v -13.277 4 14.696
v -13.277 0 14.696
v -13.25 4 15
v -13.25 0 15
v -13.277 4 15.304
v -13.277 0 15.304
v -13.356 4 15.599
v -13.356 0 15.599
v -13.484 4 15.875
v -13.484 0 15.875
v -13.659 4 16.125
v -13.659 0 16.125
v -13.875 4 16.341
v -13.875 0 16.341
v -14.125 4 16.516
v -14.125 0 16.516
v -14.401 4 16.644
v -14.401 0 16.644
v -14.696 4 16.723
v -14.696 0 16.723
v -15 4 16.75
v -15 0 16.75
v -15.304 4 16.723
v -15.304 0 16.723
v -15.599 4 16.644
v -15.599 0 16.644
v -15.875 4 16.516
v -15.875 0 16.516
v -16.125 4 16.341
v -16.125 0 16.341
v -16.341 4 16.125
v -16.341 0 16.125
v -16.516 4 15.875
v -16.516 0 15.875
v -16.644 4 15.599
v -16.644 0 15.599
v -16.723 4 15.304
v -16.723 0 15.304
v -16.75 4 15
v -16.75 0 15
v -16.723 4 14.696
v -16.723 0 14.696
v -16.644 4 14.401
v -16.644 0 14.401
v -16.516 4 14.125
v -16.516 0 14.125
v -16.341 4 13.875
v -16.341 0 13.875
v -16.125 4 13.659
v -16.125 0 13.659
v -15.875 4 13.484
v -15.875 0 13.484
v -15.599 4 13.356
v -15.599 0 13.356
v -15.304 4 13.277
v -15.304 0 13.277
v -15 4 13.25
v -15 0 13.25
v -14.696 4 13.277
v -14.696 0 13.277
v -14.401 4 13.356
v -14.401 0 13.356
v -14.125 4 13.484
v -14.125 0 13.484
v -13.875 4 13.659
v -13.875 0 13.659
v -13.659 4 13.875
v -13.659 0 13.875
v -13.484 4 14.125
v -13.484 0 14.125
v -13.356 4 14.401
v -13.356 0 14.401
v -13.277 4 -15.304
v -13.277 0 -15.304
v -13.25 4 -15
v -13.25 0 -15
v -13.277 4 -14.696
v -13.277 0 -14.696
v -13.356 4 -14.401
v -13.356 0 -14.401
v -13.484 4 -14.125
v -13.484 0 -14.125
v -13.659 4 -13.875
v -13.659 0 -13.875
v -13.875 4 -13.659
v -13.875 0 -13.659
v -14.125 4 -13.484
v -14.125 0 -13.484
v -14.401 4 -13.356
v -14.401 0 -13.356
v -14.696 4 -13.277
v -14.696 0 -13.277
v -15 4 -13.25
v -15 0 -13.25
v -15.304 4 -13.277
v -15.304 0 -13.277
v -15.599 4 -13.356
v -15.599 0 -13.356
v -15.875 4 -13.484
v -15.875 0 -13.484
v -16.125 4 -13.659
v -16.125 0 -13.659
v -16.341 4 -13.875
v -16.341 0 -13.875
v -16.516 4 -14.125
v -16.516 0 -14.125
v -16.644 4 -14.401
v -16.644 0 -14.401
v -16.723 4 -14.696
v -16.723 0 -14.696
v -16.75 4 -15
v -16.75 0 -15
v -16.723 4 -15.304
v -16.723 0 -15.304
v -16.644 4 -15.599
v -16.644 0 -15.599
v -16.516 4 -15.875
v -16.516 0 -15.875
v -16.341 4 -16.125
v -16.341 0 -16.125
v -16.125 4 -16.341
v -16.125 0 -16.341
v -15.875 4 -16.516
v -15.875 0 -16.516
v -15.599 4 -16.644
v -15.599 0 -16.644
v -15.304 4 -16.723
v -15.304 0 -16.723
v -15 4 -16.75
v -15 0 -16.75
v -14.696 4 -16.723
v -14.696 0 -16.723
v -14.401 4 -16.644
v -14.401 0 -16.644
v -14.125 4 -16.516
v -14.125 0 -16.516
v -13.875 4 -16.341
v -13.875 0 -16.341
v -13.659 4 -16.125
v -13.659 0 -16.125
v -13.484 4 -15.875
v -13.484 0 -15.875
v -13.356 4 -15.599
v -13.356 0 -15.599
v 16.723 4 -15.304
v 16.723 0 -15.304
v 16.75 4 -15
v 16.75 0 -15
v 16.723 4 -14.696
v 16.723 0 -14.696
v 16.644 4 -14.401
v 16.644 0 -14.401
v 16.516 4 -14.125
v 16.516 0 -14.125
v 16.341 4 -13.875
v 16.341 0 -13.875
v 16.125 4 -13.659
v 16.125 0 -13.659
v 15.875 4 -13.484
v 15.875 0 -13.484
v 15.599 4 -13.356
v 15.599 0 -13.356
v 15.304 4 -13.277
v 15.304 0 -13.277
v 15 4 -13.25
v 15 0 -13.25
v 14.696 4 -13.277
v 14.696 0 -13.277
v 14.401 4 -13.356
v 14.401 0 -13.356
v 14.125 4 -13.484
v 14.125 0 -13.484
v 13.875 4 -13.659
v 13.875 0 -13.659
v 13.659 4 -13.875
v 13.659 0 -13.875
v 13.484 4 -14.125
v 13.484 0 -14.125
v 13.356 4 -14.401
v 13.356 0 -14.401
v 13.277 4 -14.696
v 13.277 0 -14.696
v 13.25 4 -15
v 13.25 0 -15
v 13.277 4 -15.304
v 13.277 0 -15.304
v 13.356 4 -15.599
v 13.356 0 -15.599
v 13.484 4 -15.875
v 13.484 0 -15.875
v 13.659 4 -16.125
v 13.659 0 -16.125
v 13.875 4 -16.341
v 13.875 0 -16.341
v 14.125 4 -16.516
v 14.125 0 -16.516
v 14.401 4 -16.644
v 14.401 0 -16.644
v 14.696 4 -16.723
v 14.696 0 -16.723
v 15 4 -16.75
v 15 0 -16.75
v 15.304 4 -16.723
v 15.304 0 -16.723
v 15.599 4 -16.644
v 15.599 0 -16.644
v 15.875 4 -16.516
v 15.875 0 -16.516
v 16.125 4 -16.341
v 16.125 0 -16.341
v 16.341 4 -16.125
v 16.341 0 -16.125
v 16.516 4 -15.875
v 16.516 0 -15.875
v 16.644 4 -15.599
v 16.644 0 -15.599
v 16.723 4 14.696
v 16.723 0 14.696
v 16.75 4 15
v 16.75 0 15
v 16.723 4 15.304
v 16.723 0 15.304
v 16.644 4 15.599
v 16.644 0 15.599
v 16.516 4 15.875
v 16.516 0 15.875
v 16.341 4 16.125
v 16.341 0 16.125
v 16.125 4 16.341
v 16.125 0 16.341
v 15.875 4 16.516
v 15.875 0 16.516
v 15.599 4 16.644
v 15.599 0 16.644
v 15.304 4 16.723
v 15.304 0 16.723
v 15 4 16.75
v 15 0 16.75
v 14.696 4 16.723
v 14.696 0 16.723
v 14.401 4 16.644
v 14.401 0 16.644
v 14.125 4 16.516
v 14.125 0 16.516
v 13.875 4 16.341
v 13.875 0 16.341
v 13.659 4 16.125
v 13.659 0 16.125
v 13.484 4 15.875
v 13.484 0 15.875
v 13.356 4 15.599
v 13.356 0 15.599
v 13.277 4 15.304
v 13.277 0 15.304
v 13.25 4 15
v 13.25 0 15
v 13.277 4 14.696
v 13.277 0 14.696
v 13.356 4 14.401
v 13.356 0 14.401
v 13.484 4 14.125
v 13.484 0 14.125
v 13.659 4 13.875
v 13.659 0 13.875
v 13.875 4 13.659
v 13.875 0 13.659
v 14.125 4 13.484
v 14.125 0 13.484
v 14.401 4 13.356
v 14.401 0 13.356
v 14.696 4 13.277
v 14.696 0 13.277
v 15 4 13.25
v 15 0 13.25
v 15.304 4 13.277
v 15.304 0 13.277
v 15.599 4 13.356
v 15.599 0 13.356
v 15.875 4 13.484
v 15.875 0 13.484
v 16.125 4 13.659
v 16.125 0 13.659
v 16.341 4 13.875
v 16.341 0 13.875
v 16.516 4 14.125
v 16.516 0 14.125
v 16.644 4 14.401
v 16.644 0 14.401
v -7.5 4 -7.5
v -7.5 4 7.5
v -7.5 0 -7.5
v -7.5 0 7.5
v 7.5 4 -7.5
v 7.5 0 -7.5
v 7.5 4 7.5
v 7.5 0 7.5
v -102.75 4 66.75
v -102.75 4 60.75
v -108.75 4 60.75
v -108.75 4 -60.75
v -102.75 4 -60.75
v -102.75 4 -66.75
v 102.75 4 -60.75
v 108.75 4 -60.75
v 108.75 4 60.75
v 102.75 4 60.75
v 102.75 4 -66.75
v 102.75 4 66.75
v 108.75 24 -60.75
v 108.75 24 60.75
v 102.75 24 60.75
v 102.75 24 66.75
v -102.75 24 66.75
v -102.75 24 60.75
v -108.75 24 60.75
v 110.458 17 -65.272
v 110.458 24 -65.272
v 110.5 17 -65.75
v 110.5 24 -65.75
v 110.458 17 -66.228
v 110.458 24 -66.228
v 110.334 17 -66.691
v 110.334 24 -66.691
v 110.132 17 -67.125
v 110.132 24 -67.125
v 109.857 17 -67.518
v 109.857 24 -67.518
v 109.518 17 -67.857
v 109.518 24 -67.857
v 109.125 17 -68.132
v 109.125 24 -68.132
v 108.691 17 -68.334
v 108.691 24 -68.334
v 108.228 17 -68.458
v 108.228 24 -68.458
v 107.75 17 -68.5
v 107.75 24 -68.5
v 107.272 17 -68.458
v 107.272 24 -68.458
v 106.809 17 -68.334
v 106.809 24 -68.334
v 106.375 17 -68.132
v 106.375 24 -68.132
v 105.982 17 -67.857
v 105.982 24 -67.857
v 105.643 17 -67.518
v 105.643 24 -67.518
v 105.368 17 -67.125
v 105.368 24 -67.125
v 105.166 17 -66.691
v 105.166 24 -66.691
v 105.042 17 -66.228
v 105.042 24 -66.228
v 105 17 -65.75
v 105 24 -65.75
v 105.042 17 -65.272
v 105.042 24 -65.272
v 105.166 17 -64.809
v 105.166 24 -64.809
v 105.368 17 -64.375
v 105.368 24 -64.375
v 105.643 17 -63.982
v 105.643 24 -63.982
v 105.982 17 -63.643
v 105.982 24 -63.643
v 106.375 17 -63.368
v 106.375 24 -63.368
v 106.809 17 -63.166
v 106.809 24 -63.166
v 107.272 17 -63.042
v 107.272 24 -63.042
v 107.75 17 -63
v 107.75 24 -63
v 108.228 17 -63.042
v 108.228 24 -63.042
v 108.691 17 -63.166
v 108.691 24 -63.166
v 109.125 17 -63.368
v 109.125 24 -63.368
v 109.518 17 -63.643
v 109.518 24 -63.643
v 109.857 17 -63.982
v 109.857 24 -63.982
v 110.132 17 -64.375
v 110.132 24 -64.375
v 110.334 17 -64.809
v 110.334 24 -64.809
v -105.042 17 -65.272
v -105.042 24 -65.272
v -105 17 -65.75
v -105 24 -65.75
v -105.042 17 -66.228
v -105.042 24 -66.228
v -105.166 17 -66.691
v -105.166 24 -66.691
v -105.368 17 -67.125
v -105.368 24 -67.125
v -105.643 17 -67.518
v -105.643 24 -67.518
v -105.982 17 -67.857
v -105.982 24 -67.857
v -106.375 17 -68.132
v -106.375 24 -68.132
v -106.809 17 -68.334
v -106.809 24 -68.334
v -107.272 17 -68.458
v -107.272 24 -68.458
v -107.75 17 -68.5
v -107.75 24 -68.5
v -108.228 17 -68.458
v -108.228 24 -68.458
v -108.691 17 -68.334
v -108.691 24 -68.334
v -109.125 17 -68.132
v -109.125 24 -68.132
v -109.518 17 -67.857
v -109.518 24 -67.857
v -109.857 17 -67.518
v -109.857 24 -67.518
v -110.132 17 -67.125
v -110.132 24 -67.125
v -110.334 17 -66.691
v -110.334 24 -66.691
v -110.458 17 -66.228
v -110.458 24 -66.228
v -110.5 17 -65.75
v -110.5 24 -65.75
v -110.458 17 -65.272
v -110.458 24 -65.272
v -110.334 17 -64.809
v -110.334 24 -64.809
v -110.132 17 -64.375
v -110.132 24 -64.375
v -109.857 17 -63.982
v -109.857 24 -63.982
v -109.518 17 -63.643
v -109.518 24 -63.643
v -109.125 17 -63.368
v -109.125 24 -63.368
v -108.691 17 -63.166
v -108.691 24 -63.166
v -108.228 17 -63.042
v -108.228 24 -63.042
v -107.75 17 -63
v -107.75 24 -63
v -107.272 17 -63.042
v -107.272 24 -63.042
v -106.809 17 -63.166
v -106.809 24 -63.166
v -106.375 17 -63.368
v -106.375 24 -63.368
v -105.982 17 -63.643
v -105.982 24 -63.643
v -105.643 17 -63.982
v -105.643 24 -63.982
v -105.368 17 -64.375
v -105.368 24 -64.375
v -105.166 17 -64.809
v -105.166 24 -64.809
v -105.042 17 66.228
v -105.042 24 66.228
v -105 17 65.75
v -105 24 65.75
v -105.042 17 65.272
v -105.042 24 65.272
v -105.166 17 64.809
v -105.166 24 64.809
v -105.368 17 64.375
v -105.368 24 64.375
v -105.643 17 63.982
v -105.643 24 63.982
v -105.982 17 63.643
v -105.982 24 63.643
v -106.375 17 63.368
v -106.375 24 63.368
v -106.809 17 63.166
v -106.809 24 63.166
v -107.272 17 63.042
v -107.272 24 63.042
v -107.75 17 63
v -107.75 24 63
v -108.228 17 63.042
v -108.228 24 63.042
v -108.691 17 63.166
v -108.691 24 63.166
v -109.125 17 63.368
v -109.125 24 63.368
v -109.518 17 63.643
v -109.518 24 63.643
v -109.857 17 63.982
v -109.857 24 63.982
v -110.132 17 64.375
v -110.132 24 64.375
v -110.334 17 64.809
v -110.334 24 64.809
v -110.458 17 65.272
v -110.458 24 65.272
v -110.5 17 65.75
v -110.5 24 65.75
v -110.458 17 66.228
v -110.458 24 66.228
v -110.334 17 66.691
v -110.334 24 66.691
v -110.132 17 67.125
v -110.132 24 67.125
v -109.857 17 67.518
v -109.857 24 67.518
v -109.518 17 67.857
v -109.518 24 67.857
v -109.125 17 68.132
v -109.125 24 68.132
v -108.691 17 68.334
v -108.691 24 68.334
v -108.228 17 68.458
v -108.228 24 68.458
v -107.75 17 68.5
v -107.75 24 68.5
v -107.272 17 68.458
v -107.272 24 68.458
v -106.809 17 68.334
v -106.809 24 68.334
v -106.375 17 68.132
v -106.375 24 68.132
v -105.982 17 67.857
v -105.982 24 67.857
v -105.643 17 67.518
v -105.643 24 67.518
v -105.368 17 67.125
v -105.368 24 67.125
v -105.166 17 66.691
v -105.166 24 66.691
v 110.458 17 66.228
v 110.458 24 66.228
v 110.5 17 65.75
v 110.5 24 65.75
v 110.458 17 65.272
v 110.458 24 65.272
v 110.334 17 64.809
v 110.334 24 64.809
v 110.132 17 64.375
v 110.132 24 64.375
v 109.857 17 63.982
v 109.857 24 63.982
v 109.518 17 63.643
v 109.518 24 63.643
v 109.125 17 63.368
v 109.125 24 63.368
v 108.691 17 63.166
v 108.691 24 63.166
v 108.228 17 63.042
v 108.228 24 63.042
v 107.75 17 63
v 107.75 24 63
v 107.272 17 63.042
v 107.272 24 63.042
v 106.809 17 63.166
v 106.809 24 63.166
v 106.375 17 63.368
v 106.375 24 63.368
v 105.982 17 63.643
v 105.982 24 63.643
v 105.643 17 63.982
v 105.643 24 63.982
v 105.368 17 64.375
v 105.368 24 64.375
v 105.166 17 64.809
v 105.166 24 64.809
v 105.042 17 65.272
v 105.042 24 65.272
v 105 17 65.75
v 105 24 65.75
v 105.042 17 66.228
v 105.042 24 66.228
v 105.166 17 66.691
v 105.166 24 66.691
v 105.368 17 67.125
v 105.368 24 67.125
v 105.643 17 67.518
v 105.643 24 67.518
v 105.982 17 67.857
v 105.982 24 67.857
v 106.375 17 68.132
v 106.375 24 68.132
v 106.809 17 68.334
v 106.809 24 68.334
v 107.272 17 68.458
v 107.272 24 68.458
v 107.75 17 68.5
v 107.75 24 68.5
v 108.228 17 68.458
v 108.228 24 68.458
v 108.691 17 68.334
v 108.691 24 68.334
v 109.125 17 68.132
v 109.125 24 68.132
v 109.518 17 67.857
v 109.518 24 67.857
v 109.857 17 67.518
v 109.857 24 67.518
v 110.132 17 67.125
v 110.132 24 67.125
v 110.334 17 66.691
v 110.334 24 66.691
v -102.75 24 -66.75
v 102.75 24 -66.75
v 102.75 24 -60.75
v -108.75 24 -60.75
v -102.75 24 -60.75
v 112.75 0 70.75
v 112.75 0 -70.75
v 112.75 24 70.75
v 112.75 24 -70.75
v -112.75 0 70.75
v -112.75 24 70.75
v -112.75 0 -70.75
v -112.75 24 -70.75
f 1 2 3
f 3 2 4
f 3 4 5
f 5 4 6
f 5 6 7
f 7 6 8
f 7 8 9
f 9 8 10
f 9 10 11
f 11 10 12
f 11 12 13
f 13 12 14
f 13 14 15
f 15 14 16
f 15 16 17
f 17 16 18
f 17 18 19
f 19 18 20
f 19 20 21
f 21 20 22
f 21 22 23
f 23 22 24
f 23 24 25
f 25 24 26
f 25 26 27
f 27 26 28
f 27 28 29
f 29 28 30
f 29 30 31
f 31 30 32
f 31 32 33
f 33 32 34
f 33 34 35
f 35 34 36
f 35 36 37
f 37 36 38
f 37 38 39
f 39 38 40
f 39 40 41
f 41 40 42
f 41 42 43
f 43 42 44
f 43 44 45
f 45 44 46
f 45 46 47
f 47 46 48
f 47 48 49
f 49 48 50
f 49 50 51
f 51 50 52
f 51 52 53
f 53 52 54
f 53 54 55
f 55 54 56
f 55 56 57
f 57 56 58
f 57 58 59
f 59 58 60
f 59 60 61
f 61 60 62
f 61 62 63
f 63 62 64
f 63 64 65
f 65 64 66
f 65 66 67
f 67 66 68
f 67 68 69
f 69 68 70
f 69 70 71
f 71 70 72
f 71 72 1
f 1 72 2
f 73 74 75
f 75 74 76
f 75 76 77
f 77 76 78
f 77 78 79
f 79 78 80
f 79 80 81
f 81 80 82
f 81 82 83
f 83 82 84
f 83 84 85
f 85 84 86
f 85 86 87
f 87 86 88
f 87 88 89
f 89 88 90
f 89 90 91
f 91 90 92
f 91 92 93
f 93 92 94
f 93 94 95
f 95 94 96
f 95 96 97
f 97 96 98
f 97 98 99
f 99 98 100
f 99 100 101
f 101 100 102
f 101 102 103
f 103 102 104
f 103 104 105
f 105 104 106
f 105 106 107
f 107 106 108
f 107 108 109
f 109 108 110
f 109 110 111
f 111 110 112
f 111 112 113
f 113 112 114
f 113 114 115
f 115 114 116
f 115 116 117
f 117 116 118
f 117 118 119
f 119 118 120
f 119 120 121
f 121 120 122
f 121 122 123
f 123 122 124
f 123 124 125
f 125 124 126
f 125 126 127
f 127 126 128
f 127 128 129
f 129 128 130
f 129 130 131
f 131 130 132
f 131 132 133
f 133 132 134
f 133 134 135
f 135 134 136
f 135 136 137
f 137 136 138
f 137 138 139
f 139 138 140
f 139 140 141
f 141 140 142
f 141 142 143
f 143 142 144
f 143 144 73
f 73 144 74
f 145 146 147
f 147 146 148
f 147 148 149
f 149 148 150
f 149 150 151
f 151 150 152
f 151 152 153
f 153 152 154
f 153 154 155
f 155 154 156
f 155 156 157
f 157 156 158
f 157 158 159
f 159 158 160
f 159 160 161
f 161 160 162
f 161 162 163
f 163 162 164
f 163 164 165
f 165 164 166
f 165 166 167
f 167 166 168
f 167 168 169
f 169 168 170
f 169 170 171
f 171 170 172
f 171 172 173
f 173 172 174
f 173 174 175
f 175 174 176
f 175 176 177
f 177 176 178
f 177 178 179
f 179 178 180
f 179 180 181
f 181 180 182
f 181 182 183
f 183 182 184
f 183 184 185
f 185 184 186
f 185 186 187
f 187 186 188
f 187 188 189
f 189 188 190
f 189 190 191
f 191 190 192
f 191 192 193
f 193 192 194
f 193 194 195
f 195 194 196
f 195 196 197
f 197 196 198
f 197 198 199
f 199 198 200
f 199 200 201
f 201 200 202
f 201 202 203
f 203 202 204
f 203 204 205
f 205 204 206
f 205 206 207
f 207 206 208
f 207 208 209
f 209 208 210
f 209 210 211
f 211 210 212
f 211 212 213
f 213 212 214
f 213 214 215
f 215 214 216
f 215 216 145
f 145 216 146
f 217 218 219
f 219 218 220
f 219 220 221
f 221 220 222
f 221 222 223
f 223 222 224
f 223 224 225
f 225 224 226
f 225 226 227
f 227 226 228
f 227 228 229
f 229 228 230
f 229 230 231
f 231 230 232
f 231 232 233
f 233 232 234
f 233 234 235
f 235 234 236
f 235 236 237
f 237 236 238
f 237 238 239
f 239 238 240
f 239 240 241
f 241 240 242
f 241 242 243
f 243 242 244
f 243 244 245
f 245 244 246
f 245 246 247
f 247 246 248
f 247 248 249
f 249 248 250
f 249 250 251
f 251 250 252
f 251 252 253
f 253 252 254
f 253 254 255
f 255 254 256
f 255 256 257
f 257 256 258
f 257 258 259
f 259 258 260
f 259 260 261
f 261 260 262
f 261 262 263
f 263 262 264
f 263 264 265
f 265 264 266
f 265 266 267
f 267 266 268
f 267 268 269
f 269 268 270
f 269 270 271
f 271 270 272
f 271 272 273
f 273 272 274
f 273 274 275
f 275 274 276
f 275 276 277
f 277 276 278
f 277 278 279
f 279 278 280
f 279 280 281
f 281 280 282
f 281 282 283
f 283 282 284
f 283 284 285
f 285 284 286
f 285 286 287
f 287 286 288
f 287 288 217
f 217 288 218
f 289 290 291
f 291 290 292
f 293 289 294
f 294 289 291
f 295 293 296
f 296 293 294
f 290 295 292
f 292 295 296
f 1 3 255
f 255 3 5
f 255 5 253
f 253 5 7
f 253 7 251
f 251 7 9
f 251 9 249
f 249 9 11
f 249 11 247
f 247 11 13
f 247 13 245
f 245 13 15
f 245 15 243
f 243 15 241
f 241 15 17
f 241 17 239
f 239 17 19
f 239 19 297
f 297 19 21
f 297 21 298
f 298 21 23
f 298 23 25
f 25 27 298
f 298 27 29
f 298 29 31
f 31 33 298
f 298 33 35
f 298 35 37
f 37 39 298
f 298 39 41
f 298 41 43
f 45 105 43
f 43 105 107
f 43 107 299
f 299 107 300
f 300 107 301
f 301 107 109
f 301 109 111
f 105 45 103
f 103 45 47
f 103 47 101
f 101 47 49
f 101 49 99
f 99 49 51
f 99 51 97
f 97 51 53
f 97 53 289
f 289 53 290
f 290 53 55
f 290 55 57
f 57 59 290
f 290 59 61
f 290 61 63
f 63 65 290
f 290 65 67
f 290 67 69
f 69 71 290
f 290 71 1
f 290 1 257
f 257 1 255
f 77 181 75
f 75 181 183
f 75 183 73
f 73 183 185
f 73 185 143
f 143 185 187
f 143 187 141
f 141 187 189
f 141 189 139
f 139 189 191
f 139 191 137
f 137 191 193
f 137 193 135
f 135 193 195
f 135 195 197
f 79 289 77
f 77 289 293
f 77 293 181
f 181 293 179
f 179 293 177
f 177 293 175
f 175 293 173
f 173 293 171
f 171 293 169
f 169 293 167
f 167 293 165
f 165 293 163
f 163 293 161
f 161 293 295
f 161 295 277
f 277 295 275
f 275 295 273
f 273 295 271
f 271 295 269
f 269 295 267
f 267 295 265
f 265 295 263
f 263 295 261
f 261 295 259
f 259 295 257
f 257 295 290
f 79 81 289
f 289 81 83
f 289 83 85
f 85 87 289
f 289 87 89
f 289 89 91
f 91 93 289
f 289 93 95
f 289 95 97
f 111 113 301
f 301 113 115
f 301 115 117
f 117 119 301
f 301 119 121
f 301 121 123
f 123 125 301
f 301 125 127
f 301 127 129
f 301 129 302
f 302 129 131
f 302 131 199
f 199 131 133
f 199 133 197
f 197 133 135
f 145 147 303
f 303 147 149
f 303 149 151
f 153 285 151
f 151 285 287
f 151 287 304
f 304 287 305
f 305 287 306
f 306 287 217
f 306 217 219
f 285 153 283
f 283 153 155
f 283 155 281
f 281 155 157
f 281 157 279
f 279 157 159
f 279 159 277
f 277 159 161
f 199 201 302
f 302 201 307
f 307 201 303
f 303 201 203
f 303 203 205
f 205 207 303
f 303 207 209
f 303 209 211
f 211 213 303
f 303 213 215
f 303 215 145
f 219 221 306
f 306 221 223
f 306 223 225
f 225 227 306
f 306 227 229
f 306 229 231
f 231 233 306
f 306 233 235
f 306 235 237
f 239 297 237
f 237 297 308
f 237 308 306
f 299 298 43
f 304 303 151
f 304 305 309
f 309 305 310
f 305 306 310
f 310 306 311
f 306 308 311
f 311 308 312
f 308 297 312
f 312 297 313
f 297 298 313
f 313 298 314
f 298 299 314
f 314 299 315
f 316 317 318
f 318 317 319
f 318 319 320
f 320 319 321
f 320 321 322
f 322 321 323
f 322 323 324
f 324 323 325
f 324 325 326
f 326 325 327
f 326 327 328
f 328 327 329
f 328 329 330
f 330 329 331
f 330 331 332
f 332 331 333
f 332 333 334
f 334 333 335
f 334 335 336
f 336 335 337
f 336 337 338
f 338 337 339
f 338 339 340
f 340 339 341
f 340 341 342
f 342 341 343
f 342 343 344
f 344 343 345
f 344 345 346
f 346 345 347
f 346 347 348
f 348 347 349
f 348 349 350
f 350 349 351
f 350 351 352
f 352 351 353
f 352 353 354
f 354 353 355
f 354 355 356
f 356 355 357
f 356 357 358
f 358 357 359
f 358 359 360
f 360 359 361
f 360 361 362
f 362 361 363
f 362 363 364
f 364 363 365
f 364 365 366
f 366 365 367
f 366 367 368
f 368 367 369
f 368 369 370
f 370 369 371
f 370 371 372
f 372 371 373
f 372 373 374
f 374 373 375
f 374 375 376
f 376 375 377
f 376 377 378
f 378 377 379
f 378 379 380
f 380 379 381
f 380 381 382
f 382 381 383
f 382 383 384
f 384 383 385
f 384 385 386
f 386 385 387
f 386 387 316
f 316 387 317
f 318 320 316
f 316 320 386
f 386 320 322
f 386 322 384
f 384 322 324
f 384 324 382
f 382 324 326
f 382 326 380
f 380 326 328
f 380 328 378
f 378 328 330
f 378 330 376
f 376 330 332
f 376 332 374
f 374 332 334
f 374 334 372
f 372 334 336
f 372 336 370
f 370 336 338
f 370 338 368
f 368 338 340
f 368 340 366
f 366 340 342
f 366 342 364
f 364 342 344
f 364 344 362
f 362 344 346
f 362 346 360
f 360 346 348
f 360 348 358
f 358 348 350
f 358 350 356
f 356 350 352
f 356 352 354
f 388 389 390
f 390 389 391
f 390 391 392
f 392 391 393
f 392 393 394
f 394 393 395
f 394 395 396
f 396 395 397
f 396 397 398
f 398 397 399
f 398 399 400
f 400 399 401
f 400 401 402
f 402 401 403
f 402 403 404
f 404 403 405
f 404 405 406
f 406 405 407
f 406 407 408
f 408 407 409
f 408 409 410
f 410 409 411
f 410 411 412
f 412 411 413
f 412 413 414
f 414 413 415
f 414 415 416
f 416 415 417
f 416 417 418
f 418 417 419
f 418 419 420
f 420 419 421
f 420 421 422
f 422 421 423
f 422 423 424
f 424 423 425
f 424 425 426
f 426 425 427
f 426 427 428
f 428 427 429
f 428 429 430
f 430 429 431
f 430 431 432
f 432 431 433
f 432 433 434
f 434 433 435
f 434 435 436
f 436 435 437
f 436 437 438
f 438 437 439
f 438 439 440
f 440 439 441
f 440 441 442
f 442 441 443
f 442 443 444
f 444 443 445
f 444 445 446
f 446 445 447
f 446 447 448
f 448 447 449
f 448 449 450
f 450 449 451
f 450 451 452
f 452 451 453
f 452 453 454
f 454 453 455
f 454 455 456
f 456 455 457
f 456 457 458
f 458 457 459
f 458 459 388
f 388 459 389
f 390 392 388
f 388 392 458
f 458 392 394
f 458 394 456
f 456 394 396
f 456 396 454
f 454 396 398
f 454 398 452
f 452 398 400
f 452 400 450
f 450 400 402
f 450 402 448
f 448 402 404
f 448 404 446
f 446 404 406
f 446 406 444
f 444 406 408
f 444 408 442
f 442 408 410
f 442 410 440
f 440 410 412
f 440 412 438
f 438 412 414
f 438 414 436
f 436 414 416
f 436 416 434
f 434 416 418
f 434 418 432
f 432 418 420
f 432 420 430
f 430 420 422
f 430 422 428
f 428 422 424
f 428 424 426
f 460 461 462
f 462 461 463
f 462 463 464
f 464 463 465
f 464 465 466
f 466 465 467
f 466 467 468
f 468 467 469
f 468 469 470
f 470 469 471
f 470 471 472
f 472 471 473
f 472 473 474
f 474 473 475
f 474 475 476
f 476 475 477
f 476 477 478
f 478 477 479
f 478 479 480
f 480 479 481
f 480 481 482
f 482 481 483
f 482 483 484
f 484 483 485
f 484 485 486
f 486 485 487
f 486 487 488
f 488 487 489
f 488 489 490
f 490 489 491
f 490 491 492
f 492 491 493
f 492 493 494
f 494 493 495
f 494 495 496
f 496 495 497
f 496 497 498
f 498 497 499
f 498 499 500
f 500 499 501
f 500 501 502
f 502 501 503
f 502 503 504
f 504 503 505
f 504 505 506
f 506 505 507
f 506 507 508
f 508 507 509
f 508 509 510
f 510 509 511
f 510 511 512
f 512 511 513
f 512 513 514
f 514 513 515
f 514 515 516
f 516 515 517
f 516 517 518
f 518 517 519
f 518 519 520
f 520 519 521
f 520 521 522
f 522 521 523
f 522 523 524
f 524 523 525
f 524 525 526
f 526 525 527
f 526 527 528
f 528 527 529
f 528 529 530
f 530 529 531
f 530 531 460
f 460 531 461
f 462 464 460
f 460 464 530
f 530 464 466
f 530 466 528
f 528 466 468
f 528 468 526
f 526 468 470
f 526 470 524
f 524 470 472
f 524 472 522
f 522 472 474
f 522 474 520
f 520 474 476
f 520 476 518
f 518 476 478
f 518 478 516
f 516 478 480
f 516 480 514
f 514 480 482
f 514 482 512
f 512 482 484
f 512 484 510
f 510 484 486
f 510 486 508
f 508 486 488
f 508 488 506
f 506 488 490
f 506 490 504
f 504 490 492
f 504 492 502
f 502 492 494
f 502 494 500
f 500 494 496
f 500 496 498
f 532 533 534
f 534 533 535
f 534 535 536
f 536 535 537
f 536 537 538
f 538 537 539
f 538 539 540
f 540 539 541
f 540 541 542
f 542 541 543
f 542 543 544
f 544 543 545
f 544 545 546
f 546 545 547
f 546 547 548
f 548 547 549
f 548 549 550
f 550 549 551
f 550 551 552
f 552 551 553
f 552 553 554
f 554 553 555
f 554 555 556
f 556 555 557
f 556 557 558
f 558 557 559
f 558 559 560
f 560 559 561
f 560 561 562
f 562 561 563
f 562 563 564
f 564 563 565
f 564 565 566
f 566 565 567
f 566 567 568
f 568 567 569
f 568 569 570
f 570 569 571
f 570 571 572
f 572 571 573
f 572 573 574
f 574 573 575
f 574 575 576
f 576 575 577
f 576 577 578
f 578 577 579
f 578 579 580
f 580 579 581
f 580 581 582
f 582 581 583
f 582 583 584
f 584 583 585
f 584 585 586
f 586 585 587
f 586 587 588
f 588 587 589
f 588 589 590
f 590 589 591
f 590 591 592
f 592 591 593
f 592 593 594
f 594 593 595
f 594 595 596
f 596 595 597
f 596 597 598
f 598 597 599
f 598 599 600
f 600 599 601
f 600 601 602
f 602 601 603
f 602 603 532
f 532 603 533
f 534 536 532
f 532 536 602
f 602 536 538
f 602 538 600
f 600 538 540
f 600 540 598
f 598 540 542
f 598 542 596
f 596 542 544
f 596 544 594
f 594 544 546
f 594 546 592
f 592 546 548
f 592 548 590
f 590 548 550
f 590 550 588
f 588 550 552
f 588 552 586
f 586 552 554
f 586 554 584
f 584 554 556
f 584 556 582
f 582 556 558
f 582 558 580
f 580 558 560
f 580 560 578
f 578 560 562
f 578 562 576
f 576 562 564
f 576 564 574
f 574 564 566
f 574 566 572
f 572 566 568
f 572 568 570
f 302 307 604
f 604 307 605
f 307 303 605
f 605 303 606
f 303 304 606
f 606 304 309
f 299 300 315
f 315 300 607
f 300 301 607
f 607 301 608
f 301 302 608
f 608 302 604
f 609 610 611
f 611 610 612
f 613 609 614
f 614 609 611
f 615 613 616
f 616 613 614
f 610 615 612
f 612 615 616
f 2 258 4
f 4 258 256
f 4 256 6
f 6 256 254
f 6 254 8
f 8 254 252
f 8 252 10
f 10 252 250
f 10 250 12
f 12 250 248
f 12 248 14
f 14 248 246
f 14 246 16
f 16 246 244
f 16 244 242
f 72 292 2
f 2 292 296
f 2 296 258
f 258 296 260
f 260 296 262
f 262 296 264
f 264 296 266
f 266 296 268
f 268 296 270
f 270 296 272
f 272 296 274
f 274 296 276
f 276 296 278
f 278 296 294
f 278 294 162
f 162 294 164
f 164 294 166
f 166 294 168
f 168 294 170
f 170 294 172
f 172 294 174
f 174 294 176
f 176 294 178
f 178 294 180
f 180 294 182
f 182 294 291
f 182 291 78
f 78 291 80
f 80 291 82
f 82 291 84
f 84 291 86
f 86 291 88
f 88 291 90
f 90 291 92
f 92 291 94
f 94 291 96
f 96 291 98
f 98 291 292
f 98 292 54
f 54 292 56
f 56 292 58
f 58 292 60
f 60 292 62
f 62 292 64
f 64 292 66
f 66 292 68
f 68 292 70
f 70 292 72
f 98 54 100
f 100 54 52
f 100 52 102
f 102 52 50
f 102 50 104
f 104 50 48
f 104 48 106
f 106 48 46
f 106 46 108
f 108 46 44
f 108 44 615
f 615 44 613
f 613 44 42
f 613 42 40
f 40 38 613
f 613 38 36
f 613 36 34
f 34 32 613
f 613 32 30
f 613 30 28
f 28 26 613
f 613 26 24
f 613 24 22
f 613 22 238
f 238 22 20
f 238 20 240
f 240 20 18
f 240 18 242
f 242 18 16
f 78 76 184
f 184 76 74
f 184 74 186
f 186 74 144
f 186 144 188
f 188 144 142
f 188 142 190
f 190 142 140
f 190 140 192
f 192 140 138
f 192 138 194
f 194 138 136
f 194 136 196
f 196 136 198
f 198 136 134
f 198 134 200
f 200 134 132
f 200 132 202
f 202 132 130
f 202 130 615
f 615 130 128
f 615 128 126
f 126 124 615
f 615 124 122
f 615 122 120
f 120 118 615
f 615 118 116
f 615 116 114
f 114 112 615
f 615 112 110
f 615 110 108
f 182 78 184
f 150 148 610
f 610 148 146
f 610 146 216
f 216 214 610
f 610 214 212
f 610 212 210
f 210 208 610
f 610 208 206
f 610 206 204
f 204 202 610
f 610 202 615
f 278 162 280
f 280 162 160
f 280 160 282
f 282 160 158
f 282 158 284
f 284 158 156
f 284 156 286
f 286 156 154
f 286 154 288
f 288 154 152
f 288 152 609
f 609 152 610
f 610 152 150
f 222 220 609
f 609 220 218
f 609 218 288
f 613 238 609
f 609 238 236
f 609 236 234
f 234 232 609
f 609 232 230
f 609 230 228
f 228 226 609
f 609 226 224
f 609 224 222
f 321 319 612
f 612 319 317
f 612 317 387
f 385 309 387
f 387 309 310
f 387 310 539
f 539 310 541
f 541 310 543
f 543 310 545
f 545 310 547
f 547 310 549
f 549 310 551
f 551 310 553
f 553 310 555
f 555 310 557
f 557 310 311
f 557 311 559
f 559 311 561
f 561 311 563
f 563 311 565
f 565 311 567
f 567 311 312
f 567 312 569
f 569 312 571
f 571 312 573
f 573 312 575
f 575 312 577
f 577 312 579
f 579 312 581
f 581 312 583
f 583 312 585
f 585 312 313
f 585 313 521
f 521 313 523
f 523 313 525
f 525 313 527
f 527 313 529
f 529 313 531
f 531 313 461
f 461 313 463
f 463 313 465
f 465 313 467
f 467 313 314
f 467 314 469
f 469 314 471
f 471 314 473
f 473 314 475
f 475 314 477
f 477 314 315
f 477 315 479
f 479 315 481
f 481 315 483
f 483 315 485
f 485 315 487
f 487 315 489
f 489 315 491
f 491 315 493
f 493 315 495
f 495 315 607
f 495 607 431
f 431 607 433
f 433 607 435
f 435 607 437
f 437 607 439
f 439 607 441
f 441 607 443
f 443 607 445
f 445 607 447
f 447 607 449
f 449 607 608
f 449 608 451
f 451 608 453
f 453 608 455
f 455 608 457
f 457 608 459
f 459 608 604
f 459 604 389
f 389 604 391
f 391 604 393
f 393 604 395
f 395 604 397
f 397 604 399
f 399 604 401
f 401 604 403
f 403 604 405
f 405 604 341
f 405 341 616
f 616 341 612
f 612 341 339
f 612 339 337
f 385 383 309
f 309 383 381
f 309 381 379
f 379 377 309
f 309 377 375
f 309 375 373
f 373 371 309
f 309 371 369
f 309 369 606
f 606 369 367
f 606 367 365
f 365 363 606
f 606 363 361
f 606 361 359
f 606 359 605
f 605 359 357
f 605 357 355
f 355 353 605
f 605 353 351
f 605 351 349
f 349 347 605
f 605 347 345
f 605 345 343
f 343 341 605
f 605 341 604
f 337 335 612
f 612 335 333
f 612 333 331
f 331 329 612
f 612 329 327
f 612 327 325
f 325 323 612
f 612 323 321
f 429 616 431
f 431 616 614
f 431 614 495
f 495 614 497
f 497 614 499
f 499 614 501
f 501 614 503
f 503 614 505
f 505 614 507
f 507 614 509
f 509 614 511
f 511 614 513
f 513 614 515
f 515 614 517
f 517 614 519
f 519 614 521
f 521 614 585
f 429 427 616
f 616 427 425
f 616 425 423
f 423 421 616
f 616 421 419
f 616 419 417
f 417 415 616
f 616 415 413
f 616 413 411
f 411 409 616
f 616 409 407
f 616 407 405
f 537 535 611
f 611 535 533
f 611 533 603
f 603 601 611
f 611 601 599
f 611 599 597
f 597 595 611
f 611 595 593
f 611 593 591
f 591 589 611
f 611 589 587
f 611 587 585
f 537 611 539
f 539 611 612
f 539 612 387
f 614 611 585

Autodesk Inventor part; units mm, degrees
ref_plane "YZ Plane" through (0, 0, 0) normal (1, 0, 0) x (0, 1, 0)
ref_plane "XZ Plane" through (0, 0, 0) normal (0, 1, 0) x (-1, 0, 0)
ref_plane "XY Plane" through (0, 0, 0) normal (0, 0, 1) x (1, 0, 0)
sketch "Sketch1" plane through (0, 0, 0) normal (0, 1, 0) x (-1, 0, 0)
  line L0 (112.75, -70.75) -> (-112.75, -70.75)
  line L1 (-112.75, -70.75) -> (-112.75, 70.75)
  line L2 (-112.75, 70.75) -> (112.75, 70.75)
  line L3 (112.75, 70.75) -> (112.75, -70.75)
  line L4 (0, -70.75) -> (0, 70.75) construction
  line L5 (112.75, 0) -> (-112.75, 0) construction
  line L6 (112.75, -70.75) -> (102.75, -70.75)
  line L7 (102.75, -66.75) -> (102.75, -60.75)
  line L8 (102.75, -60.75) -> (108.75, -60.75)
  line L9 (112.75, -60.75) -> (112.75, -70.75)
  line L10 (112.75, 70.75) -> (102.75, 70.75)
  line L11 (102.75, 66.75) -> (102.75, 60.75)
  line L12 (102.75, 60.75) -> (108.75, 60.75)
  line L13 (112.75, 60.75) -> (112.75, 70.75)
  line L14 (-112.75, -70.75) -> (-102.75, -70.75)
  line L15 (-102.75, -66.75) -> (-102.75, -60.75)
  line L16 (-102.75, -60.75) -> (-108.75, -60.75)
  line L17 (-112.75, -60.75) -> (-112.75, -70.75)
  line L18 (-102.75, 60.75) -> (-108.75, 60.75)
  line L19 (-112.75, 60.75) -> (-112.75, 70.75)
  line L20 (-112.75, 70.75) -> (-102.75, 70.75)
  line L21 (-102.75, 66.75) -> (-102.75, 60.75)
  line L22 (102.75, -66.75) -> (-102.75, -66.75)
  line L23 (-108.75, -60.75) -> (-108.75, 60.75)
  line L24 (-102.75, 66.75) -> (102.75, 66.75)
  line L25 (108.75, 60.75) -> (108.75, -60.75)
  point P0 (0, 0)
  point P1 (0, 0)
  dimension "d0" = 225.5
  dimension "d1" = 141.5
  dimension "d2" = 10
  dimension "d3" = 10
  dimension "d5" = 4
  dimension "d6" = 4
extrude "Extrusion1" add sketch "Sketch1" along normal blind 24
sketch "Sketch2" plane through (0, 24, 0) normal (0, 1, 0) x (1, 0, 0)
  line L0 (-108.75, 60.75) -> (-102.75, 60.75) construction
  line L1 (-102.75, 60.75) -> (-112.75, 60.75) construction
  line L2 (-112.75, 60.75) -> (-112.75, 70.75) construction
  line L3 (-112.75, 70.75) -> (-102.75, 70.75) construction
  line L4 (-102.75, 70.75) -> (-102.75, 60.75) construction
  line L5 (-112.75, 70.75) -> (-112.75, -70.75) construction
  line L6 (-112.75, 0) -> (112.75, 0) construction
  line L7 (112.75, 70.75) -> (112.75, -70.75) construction
  line L8 (-112.75, -70.75) -> (112.75, -70.75) construction
  line L9 (0, -70.75) -> (0, 70.75) construction
  line L10 (-112.75, 70.75) -> (112.75, 70.75) construction
  circle A0 centre (-107.75, 65.75) radius 2.75
  circle A1 centre (-107.75, -65.75) radius 2.75
  circle A2 centre (107.75, 65.75) radius 2.75
  circle A3 centre (107.75, -65.75) radius 2.75
  point P0 (0, 0)
  dimension "d9" = 5.5
extrude "Extrusion2" cut sketch "Sketch2" against normal blind 7
sketch "Sketch4" plane through (0, 0, 0) normal (0, -1, 0) x (1, 0, 0)
  line L0 (-108.75, -60.75) -> (-108.75, 60.75) projected
  line L1 (-108.75, 60.75) -> (-102.75, 60.75) projected
  line L2 (-102.75, 60.75) -> (-102.75, 66.75) projected
  line L3 (-102.75, 66.75) -> (102.75, 66.75) projected
  line L4 (102.75, -66.75) -> (-102.75, -66.75) projected
  line L5 (-102.75, -66.75) -> (-102.75, -60.75) projected
  line L6 (-102.75, -60.75) -> (-108.75, -60.75) projected
  line L7 (102.75, -60.75) -> (102.75, -66.75) projected
  line L8 (108.75, -60.75) -> (102.75, -60.75) projected
  line L9 (108.75, 60.75) -> (108.75, -60.75) projected
  line L10 (102.75, 60.75) -> (108.75, 60.75) projected
  line L11 (102.75, 66.75) -> (102.75, 60.75) projected
  point P0 (0, 0)
extrude "Extrusion4" add sketch "Sketch4" against normal blind 4
sketch "Sketch5" plane through (0, 0, 0) normal (0, -1, 0) x (1, 0, 0)
  line L0 (112.75, -70.75) -> (-112.75, -70.75) construction
  line L1 (0, -70.75) -> (0, 70.75) construction
  line L2 (-112.75, 70.75) -> (112.75, 70.75) construction
  line L3 (112.75, 70.75) -> (112.75, -70.75) construction
  line L4 (112.75, 0) -> (-112.75, 0) construction
  line L5 (-112.75, -70.75) -> (-112.75, 70.75) construction
  line L6 (0, 0) -> (15, 0) construction
  line L7 (15, 0) -> (15, -15) construction
  line L8 (15, -15) -> (0, -15) construction
  line L9 (0, -15) -> (0, 0) construction
  circle A0 centre (15, -15) radius 1.75
  circle A1 centre (-15, -15) radius 1.75
  circle A2 centre (15, 15) radius 1.75
  circle A3 centre (-15, 15) radius 1.75
  line L10 (7.5, -7.5) -> (-7.5, -7.5)
  line L11 (-7.5, -7.5) -> (-7.5, 7.5)
  line L12 (-7.5, 7.5) -> (7.5, 7.5)
  line L13 (7.5, 7.5) -> (7.5, -7.5)
  dimension "d16" = 15
  dimension "d17" = 15
  dimension "d18" = 3.5
  dimension "d21" = 15
  dimension "d22" = 15
  dimension "d23" = 7.5
  dimension "d24" = 7.5
extrude "Extrusion5" cut sketch "Sketch5" against normal up to next
properties part number "touchscreen_case"
